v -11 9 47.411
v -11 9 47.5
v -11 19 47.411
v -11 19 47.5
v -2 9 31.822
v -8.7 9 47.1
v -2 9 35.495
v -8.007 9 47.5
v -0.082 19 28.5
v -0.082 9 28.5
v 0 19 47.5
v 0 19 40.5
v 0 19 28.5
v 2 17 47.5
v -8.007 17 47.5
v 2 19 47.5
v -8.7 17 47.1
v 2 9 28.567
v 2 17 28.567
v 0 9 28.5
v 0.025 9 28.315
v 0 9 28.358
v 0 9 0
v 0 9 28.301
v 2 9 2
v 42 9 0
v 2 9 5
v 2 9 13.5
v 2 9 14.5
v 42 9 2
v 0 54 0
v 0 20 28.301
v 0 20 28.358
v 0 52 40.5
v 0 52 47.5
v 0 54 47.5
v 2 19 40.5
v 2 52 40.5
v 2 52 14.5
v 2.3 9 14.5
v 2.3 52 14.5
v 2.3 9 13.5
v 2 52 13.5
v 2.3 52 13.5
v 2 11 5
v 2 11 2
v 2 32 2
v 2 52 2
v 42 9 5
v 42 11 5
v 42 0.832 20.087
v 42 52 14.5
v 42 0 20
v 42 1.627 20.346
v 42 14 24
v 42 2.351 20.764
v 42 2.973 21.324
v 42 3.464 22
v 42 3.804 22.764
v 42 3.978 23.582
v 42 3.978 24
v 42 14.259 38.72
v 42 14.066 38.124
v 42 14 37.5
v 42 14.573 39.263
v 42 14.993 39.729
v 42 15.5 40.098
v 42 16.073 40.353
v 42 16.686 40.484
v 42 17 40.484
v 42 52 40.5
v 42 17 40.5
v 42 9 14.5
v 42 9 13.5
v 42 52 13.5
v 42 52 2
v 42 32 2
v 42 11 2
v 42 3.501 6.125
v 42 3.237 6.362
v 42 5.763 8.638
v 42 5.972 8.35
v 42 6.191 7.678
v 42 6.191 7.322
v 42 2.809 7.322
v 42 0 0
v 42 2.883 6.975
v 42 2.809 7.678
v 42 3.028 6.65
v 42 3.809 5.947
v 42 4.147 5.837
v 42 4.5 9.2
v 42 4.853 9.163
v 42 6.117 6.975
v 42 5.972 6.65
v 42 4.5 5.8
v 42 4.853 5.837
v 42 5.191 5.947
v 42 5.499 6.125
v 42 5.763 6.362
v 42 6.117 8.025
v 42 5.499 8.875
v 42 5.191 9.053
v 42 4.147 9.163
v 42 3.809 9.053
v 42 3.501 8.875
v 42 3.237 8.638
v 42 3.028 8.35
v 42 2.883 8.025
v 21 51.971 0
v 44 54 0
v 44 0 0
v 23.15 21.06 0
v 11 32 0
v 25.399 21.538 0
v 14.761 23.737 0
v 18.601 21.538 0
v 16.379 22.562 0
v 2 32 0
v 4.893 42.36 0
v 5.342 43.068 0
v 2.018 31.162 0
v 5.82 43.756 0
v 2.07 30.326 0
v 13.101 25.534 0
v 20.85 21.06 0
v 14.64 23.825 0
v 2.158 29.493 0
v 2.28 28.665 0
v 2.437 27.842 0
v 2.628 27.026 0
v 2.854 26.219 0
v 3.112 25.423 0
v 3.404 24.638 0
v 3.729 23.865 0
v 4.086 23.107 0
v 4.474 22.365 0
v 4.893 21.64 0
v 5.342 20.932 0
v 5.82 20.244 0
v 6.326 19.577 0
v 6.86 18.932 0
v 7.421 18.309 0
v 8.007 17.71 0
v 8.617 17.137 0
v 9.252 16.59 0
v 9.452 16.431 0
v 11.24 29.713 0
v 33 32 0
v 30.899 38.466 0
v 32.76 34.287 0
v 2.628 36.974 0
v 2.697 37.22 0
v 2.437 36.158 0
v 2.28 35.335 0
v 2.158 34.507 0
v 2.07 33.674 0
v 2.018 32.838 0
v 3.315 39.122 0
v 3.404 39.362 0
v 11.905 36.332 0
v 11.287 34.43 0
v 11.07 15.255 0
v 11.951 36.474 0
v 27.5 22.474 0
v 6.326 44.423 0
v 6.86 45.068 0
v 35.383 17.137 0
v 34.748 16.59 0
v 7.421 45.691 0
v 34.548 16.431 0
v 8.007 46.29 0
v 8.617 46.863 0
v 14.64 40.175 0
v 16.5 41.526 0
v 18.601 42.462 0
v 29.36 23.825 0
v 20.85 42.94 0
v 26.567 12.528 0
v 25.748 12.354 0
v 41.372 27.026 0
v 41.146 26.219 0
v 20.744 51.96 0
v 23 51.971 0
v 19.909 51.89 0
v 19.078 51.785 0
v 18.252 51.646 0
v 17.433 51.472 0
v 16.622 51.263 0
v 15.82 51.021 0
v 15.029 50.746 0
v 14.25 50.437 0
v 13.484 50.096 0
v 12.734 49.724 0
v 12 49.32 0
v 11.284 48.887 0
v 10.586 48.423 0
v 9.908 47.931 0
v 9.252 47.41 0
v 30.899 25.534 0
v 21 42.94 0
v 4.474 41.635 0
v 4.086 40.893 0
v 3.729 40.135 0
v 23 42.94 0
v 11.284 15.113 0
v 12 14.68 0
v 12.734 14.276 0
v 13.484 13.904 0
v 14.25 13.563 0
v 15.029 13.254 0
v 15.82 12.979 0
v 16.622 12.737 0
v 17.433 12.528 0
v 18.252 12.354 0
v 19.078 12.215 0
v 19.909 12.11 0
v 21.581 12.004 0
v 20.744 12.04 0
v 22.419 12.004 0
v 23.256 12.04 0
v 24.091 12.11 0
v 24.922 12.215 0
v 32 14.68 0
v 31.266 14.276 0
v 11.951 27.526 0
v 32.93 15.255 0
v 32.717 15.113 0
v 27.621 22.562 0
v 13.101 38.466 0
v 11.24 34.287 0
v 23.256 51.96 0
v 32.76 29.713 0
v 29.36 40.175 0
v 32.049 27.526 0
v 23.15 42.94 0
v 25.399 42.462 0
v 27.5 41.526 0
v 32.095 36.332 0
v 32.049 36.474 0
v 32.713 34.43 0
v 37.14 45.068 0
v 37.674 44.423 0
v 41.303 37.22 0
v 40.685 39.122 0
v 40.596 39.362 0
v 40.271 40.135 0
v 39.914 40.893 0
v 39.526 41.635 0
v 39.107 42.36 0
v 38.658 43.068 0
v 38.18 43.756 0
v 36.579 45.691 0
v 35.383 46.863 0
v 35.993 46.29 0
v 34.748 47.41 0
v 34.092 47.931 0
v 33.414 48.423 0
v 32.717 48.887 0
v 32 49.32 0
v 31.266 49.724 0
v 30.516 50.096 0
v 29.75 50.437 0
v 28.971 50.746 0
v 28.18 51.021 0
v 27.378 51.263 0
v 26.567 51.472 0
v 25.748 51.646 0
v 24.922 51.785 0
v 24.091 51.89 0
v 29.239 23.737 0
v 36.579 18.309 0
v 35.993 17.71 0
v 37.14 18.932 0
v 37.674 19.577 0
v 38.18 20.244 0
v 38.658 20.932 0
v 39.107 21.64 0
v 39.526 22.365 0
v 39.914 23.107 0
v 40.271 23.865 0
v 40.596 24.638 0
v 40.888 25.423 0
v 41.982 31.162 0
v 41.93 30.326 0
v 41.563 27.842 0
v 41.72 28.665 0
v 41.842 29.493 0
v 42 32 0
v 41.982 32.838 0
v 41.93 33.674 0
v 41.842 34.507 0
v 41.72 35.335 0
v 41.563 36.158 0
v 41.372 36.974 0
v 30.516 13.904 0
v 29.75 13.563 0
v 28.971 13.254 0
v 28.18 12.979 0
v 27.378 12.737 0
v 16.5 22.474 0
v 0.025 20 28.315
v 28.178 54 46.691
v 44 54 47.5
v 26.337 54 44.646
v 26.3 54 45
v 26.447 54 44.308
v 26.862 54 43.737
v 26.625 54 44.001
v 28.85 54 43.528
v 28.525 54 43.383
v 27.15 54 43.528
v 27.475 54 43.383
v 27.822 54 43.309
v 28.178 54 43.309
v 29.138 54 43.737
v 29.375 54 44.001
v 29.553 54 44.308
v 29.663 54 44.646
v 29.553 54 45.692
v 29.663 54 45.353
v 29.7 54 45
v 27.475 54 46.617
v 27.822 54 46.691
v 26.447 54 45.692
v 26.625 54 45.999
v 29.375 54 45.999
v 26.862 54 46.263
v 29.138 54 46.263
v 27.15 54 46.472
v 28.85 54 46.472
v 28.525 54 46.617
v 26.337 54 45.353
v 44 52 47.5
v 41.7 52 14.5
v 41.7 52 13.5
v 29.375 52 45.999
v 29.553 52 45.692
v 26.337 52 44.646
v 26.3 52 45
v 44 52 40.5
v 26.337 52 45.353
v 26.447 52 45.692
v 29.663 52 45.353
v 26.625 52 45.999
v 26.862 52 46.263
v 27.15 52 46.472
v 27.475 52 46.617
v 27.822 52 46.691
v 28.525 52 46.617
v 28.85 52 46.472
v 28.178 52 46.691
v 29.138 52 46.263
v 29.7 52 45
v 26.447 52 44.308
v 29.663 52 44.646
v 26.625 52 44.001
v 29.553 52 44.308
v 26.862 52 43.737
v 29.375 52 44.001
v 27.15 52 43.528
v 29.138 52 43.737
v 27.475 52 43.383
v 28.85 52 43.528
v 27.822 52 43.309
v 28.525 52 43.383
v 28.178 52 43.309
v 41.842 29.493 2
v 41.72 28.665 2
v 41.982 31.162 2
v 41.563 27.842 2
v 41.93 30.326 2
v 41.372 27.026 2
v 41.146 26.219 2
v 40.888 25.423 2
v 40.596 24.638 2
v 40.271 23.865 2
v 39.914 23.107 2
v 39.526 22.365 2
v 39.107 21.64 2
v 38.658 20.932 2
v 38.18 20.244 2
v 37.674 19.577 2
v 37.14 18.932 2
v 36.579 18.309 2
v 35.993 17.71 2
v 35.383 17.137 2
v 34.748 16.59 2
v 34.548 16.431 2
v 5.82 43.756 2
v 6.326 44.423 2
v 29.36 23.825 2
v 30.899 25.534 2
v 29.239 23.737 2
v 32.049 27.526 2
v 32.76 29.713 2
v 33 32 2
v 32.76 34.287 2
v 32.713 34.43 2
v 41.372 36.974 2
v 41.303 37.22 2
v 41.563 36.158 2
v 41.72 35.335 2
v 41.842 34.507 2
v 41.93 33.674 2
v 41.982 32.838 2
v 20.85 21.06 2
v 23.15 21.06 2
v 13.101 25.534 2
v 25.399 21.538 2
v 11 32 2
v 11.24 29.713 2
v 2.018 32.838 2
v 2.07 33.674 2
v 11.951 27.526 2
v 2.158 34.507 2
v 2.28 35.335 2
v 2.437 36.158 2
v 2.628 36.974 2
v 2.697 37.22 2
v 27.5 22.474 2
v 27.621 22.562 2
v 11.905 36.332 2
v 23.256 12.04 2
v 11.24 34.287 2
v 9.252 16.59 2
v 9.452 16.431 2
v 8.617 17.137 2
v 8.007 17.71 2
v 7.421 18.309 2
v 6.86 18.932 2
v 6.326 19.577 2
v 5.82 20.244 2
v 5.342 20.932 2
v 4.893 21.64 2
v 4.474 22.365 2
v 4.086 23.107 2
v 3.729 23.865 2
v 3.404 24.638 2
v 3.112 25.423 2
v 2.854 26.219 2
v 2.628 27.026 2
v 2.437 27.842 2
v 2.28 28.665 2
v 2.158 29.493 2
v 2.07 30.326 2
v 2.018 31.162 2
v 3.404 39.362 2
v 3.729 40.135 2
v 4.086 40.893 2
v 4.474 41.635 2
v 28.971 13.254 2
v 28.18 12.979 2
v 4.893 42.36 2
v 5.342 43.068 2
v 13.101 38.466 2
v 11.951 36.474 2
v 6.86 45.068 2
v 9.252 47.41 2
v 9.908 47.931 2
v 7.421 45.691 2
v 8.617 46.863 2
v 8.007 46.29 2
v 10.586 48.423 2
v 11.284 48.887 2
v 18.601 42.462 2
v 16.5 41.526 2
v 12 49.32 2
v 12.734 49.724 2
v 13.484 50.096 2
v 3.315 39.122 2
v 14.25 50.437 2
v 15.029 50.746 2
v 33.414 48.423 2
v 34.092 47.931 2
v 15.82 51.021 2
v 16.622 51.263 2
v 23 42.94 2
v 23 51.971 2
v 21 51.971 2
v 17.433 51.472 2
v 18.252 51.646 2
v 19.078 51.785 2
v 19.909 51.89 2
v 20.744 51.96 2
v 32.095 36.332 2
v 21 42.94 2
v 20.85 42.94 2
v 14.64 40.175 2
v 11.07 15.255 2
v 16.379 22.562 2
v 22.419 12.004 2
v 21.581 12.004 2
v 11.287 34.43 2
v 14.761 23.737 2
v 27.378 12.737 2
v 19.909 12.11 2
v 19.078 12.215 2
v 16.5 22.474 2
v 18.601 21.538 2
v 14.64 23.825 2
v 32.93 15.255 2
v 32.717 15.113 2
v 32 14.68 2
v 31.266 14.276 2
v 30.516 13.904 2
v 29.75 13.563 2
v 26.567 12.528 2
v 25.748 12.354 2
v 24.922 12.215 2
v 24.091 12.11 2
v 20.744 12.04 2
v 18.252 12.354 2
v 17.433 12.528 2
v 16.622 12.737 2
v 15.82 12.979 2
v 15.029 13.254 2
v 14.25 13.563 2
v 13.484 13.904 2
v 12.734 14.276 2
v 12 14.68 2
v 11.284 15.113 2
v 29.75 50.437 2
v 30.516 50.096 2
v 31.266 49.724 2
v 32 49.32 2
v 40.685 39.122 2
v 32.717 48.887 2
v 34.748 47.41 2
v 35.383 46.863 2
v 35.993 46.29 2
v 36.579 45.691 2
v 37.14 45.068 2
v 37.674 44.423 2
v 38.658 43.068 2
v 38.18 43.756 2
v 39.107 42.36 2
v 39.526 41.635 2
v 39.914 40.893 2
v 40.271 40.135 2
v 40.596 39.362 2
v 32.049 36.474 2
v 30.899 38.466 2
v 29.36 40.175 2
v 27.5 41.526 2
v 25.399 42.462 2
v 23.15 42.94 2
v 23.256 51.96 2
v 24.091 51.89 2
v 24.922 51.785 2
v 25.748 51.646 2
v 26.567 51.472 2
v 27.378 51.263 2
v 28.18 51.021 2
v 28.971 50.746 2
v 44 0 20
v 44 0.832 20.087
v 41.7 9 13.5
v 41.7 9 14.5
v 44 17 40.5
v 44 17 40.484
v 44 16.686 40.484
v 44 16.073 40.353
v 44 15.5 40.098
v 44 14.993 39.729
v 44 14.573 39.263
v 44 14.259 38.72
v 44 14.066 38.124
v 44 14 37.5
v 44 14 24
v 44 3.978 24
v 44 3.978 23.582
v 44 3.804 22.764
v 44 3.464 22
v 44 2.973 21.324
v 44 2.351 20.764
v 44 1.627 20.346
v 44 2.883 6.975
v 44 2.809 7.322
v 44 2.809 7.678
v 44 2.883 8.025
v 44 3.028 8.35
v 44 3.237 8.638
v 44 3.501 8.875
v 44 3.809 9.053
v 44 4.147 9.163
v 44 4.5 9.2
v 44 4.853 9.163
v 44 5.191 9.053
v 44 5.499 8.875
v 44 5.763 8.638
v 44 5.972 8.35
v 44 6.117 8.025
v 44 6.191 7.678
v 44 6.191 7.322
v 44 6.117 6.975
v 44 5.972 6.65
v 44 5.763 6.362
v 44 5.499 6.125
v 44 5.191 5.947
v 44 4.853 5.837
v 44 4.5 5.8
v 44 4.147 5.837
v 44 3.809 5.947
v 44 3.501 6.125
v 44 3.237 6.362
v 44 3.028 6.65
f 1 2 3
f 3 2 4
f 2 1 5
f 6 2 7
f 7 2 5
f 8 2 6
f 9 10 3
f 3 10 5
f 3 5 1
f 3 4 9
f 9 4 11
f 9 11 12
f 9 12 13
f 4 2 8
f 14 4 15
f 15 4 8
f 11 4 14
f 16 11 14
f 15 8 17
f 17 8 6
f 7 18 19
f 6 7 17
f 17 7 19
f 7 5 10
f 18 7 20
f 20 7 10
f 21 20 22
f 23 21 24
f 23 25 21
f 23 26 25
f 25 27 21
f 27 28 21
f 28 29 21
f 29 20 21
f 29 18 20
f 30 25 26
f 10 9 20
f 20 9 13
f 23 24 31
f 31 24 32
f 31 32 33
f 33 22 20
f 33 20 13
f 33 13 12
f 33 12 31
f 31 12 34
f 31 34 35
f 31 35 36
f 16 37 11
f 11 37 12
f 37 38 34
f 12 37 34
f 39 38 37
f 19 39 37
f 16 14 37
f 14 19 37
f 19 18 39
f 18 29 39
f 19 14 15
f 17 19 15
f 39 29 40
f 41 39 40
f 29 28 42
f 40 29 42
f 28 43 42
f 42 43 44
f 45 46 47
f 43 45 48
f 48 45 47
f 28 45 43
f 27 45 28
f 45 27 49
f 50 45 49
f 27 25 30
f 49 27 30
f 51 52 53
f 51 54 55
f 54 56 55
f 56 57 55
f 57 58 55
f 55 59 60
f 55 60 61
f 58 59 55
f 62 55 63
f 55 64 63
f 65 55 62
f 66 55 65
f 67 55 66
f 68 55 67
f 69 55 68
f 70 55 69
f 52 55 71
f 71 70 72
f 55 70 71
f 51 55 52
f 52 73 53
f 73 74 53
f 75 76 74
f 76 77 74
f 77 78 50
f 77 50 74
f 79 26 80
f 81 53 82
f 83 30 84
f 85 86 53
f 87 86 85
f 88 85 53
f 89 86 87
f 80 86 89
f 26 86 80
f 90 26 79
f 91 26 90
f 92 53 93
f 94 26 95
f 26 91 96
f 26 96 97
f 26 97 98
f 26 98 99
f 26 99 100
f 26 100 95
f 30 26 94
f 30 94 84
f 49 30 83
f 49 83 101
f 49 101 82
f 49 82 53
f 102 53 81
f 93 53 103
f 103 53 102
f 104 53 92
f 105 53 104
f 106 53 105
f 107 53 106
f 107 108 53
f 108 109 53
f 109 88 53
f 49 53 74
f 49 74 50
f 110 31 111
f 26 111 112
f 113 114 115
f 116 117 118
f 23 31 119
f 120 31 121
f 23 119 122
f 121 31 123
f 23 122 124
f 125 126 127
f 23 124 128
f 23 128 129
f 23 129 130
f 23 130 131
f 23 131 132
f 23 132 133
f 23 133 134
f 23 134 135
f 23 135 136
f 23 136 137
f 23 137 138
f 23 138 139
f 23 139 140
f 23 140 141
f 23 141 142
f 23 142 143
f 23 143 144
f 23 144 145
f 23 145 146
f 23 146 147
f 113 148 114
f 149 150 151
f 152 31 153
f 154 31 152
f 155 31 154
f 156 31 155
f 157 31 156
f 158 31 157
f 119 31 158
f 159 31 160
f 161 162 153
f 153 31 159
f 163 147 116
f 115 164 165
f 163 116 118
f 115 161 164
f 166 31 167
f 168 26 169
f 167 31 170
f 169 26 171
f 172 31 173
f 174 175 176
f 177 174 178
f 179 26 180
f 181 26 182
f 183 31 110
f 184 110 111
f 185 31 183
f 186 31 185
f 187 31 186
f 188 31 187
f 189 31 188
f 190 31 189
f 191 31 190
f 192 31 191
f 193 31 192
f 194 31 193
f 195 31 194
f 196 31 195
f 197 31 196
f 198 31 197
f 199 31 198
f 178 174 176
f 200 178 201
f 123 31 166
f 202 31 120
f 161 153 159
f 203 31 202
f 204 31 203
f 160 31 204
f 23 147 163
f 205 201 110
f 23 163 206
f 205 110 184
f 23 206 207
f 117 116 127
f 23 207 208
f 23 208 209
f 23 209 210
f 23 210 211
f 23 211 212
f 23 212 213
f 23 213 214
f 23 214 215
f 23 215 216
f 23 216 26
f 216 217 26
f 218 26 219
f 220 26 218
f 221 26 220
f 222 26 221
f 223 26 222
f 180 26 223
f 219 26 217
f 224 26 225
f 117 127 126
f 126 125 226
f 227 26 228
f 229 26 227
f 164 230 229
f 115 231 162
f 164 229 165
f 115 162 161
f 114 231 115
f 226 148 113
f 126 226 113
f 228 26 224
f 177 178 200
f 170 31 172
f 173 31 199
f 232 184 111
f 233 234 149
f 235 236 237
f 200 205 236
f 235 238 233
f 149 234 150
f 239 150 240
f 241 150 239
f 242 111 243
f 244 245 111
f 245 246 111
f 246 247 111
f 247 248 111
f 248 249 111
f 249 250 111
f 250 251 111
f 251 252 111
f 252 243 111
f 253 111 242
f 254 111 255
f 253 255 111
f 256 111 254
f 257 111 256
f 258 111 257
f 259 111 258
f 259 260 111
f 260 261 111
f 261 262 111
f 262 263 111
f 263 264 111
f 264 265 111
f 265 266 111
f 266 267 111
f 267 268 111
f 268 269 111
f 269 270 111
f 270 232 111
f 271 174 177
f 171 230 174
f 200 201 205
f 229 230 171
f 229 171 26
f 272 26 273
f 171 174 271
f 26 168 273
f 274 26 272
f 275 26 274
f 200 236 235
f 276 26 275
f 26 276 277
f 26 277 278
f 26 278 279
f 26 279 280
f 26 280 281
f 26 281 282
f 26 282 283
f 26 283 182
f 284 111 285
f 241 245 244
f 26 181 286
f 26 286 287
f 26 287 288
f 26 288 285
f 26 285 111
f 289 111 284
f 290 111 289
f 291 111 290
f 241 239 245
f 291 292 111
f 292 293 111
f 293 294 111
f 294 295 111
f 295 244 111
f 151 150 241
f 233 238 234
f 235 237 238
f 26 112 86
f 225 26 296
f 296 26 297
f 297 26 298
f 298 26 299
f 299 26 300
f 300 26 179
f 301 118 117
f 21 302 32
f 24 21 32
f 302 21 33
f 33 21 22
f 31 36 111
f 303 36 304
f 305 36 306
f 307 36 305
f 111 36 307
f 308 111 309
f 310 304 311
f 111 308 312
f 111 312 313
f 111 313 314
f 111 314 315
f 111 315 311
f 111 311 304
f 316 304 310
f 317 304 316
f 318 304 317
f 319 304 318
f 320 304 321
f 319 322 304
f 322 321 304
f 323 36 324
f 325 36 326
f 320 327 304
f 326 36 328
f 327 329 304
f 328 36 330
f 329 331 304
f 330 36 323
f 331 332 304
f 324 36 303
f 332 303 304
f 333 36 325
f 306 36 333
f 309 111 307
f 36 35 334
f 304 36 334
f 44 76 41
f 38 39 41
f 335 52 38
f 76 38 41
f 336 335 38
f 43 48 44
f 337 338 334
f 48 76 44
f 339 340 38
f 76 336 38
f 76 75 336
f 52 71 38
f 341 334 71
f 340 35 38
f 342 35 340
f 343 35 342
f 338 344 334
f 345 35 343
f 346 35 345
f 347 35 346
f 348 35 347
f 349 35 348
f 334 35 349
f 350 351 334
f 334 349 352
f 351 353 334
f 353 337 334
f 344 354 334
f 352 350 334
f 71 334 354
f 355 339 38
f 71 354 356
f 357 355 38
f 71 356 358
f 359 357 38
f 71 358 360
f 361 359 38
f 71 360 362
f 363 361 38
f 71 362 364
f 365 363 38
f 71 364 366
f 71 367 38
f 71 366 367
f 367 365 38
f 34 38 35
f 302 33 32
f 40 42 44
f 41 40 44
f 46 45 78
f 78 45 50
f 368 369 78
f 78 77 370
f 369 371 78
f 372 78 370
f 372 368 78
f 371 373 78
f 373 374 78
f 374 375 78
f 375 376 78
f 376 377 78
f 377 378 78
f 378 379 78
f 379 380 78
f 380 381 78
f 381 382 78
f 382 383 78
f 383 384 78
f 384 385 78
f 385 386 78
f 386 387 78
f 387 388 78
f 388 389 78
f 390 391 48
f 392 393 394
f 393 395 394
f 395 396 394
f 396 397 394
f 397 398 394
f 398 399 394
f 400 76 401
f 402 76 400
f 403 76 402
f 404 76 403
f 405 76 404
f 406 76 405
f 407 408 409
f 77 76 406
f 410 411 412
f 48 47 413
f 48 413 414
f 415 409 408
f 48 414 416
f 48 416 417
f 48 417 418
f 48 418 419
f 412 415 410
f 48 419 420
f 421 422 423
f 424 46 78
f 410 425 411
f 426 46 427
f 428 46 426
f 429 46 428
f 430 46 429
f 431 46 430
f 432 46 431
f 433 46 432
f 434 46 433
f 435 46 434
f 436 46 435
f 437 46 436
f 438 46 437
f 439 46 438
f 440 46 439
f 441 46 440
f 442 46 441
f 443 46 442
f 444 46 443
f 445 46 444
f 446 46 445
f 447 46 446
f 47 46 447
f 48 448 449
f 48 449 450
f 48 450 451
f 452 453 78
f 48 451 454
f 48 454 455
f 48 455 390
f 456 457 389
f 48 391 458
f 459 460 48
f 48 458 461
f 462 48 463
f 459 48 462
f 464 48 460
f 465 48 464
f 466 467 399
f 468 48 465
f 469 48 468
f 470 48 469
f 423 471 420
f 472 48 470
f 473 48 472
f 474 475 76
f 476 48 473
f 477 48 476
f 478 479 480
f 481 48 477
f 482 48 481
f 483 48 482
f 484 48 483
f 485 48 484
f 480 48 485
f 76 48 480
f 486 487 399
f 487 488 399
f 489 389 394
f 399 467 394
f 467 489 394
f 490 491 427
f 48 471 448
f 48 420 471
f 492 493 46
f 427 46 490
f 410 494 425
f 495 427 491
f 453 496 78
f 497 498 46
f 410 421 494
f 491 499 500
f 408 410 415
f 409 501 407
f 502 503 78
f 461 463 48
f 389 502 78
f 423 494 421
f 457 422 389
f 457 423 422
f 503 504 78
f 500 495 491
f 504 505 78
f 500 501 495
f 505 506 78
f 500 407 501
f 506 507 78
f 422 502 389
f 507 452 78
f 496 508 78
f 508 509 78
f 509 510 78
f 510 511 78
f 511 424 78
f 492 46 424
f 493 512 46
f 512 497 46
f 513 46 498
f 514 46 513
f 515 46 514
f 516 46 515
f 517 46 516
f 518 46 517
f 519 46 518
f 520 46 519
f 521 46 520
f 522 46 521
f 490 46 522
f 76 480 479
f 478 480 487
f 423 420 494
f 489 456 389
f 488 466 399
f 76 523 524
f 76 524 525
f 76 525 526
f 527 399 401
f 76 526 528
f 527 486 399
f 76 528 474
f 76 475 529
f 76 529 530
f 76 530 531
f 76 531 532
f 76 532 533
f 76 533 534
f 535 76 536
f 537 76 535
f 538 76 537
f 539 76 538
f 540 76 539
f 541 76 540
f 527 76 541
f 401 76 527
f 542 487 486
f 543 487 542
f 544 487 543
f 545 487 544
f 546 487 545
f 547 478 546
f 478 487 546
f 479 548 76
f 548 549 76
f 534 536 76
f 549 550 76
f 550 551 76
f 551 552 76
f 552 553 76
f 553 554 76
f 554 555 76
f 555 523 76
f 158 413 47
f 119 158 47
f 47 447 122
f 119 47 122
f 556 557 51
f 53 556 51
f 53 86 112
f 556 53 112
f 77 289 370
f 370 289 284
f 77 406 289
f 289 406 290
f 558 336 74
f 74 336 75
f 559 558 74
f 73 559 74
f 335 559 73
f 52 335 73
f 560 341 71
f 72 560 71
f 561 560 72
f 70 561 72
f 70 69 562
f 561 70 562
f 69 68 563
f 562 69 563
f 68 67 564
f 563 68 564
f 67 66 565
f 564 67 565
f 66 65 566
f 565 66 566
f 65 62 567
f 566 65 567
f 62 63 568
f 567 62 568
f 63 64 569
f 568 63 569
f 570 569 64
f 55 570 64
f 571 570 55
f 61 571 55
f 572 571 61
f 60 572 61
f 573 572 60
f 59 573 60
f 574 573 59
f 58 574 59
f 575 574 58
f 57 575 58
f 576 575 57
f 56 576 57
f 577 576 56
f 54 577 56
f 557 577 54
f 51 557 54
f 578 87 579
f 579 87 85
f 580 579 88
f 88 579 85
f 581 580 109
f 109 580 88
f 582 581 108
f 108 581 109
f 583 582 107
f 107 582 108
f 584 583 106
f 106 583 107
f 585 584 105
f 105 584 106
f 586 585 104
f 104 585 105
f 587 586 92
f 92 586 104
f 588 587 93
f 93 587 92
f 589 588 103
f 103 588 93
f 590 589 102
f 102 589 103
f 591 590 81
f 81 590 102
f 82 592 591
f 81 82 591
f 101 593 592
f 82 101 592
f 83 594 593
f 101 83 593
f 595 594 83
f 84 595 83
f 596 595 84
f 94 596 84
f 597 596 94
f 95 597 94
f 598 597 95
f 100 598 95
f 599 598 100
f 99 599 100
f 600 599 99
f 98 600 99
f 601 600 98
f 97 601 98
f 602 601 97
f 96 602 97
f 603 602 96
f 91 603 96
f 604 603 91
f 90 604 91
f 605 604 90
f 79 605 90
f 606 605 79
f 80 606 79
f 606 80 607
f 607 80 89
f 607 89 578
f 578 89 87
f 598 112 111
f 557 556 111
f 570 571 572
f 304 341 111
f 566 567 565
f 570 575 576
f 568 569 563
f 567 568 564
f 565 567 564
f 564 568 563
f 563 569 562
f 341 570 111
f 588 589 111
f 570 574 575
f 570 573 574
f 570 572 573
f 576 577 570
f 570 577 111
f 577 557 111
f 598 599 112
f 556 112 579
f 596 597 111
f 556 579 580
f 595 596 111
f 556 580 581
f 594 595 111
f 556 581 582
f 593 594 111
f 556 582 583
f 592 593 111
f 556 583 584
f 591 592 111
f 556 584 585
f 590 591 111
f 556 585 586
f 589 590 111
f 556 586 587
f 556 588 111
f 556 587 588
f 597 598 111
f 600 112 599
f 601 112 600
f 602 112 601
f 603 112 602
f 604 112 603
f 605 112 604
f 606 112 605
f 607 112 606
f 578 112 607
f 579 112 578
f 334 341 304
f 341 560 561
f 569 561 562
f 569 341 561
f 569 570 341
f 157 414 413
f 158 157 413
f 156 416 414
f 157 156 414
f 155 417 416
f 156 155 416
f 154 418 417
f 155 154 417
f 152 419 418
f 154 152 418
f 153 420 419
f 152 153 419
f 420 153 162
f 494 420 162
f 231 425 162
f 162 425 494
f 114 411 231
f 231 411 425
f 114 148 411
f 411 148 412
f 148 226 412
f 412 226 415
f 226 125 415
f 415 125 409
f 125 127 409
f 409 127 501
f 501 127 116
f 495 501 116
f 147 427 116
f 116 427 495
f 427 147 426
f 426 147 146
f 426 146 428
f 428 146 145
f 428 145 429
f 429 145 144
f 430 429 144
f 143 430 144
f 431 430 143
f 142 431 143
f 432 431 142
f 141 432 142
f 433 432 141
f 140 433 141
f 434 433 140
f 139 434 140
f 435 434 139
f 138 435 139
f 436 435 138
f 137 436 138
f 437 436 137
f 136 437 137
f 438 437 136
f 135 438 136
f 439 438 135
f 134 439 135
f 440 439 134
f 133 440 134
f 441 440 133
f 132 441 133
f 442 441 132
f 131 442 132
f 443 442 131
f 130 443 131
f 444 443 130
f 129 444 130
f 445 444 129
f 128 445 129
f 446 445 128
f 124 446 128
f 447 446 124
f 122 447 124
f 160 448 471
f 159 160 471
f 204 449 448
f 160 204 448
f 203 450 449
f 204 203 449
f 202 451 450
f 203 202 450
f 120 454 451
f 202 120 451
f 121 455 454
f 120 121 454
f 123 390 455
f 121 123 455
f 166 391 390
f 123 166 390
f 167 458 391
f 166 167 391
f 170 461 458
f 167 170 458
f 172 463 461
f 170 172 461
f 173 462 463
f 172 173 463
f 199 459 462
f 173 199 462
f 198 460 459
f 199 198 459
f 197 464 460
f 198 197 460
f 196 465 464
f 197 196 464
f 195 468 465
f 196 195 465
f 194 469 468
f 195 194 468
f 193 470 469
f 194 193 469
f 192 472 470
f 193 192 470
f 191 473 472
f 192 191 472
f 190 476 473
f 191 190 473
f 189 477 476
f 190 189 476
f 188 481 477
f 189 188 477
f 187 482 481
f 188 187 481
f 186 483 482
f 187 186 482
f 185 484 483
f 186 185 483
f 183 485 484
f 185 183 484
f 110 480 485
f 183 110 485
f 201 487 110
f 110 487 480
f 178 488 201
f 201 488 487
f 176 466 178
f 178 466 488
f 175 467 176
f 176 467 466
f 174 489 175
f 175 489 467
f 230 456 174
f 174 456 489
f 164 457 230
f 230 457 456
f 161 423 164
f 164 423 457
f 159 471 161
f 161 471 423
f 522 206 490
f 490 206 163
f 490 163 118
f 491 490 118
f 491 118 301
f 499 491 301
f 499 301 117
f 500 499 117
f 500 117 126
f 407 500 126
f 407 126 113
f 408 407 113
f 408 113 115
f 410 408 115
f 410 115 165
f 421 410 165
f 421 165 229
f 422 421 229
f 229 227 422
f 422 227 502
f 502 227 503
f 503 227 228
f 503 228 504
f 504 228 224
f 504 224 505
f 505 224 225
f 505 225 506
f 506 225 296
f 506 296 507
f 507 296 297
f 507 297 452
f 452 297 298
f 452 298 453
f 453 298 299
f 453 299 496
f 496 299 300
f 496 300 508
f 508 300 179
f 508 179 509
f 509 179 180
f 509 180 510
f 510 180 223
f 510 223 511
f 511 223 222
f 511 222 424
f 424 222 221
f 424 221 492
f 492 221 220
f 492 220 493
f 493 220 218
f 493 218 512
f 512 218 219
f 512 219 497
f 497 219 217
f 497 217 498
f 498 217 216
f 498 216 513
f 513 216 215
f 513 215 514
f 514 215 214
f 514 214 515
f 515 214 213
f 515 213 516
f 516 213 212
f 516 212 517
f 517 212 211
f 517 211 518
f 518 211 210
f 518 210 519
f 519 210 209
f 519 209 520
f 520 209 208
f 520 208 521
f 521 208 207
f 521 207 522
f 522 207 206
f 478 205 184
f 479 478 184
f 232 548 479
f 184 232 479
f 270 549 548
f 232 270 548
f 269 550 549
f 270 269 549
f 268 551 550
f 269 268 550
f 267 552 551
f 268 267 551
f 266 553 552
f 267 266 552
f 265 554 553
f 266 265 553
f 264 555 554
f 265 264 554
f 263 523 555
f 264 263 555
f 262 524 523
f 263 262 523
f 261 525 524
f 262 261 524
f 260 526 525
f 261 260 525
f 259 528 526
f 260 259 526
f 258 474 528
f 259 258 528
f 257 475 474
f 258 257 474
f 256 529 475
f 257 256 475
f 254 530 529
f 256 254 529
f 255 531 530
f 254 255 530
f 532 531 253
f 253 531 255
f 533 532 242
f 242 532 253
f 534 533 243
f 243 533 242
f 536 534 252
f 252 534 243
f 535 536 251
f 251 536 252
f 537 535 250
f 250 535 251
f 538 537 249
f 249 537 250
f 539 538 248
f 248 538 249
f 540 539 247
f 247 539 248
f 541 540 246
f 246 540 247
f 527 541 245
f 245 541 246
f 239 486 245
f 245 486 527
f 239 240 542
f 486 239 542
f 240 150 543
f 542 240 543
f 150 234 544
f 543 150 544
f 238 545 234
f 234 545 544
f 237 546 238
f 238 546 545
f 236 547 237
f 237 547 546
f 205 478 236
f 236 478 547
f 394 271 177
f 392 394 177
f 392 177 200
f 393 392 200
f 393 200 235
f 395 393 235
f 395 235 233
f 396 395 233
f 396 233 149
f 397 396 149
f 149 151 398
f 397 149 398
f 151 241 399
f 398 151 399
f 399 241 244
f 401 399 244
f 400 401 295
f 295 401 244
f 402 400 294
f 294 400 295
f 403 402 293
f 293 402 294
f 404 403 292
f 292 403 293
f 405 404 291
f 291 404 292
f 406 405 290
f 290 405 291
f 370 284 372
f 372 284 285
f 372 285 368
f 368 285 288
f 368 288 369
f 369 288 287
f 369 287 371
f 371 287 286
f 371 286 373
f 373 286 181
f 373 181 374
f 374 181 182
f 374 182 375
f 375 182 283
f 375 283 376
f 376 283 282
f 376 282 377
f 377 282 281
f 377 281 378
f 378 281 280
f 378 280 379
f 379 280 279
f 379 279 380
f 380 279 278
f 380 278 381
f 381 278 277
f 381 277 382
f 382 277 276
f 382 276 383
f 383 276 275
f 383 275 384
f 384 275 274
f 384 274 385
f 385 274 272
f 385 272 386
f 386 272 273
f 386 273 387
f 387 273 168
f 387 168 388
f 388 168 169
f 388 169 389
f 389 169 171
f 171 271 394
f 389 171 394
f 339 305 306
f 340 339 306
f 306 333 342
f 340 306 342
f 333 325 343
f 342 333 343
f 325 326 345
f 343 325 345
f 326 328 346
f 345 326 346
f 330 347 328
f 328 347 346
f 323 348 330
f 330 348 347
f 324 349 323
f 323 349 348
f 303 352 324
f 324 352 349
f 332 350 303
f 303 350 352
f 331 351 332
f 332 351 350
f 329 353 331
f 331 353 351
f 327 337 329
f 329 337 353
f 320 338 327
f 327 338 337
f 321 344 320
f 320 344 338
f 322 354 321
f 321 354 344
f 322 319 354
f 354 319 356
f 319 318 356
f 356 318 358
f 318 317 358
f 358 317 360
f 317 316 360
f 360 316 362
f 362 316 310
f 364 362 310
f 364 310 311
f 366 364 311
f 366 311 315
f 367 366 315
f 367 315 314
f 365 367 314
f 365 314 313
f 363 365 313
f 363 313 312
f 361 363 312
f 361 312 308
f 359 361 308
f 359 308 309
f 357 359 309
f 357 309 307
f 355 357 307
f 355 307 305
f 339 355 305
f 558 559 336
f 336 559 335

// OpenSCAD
wall=2;
innerX=40;
innerY=52;//54;
innerZ=47.5-wall;
dZ=38.5;
solidY=43;//47;
stepY=14;//17-4;
stepZ=22;//19;
screw1X=26;
screw1Z=innerZ-2.5+wall;
screw2Y=4.5;
screw2Z=7.5;
fanX=wall+innerX/2;
fanY=32;
flapZ=12;//12;
flapY=10;
flapA=60;
flapX=60;
lug=2.5;
fanheight=11.5;
fanrib=1;

PSUFanHousing();
//Flap();

module PSUFanHousing()
{
	union()
		{
			difference()
			{
				union()
		{
			cube([innerX+2*wall,innerY+wall,innerZ+wall]);
			translate([-flapZ+1,innerY-solidY,dZ-flapZ+wall])
				cube([flapZ,flapY,19]);
		}
		
		translate([wall,-1,wall+fanheight+fanrib])
			cube([innerX,innerY+1,innerZ+2*wall]);
		translate([wall,-1,wall])
			cube([innerX,innerY+1,fanheight]);
		translate([wall,-1,wall])
			cube([innerX,innerY+1,innerZ+2*wall]);
		translate([wall,-1,wall+dZ])
			cube([innerX+4*wall,innerY+1,innerZ+2*wall]);
		translate([0.0,2*flapZ-2.5*wall,wall+dZ])
			cube([innerX+4*wall,innerY-19,innerZ+2.5*wall]);
		translate([-wall,-1,-3*wall])
			cube([innerX+2*wall,1+innerY-solidY,2*innerZ]);
		translate([5*wall,-1,stepZ+wall])
			cube([innerX,stepY+1,innerZ+2*wall]);
		translate([innerX,stepY,dZ+wall])
			CornerRadius(thick=10,rad=3);
		translate([screw1X+wall,innerY/2,screw1Z])
			rotate([90,0,0])
				cylinder(h=200,r=1.7,$fn=30,center=true);
translate([screw1X,0,stepZ+wall])
			rotate([0,90,0])
				cylinder(h=200,r=4,$fn=30,center=true);
		translate([screw1X,screw2Y,screw2Z])
			rotate([0,90,0])
				cylinder(h=200,r=1.7,$fn=30,center=true);
		translate([screw1X,0,stepZ+wall])
			rotate([0,90,0])
				cylinder(h=200,r=4,$fn=30,center=true);
		translate([fanX, fanY, 0])
			Fan();
		translate([-flapZ+1.3+wall,innerY-solidY-1,1.55*flapZ+dZ-flapZ+wall])	
		{
			rotate([0,flapA,0])
				cube([2*flapZ, flapY-wall+1, 2*flapZ]);
			translate([-2.005*flapZ, -2, -flapZ+wall])
				rotate([0,flapA,0])
					cube([2*flapZ, flapY-wall+6, 2*flapZ]);
		}


	}


//


translate([wall,9,wall+fanheight])
			cube([0.3,innerY-9,1]);;
translate([innerX+1.7,9,wall+fanheight])
			cube([0.3,innerY-9,1]);
translate([wall,9,wall])
			cube([innerX,2,3]);;
}
}


module Flap()
{
	union()
	{
		cube([flapX, flapY, wall]);
		translate([flapZ+0.5,0,0])
			cube([flapX-flapZ, flapY, 2*wall]);
		translate([flapZ/2, flapY/2+wall/2, 0])
		difference()
		{
			cylinder(h=3*wall, r1=0.9*lug, r2=1.0*lug, $fn=40);
			cube([20,1.3,50],center=true,$fn=30);
		}
	}
}

module Fan()
{
	union()
	{
		difference()
		{
			cylinder(h=50,r=40/2,center=true,$fn=150);
			cylinder(h=60,r=11,center=true,$fn=30);
			for(a=[0:4])
				rotate([0,0,a*72])
				{
					translate([-wall/2,0,-30])
						cube([wall,50,200]);
				}
		}
		//for(x=[-1,1]) for(y=[-1,1])
//			translate([x*16,y*16,0])
//				cylinder(h=50,r=1.9,center=true,$fn=30);
	}
}


module CornerRadius(thick=10,rad=5)
{
	rotate([90,0,0])
	translate([-thick/2,-rad,-rad])
	difference()
	{
		cube([thick,2*rad,2*rad]);
		rotate([0,90,0])
			cylinder(h=3*thick,r=rad,center=true,$fn=30);
	}
}
